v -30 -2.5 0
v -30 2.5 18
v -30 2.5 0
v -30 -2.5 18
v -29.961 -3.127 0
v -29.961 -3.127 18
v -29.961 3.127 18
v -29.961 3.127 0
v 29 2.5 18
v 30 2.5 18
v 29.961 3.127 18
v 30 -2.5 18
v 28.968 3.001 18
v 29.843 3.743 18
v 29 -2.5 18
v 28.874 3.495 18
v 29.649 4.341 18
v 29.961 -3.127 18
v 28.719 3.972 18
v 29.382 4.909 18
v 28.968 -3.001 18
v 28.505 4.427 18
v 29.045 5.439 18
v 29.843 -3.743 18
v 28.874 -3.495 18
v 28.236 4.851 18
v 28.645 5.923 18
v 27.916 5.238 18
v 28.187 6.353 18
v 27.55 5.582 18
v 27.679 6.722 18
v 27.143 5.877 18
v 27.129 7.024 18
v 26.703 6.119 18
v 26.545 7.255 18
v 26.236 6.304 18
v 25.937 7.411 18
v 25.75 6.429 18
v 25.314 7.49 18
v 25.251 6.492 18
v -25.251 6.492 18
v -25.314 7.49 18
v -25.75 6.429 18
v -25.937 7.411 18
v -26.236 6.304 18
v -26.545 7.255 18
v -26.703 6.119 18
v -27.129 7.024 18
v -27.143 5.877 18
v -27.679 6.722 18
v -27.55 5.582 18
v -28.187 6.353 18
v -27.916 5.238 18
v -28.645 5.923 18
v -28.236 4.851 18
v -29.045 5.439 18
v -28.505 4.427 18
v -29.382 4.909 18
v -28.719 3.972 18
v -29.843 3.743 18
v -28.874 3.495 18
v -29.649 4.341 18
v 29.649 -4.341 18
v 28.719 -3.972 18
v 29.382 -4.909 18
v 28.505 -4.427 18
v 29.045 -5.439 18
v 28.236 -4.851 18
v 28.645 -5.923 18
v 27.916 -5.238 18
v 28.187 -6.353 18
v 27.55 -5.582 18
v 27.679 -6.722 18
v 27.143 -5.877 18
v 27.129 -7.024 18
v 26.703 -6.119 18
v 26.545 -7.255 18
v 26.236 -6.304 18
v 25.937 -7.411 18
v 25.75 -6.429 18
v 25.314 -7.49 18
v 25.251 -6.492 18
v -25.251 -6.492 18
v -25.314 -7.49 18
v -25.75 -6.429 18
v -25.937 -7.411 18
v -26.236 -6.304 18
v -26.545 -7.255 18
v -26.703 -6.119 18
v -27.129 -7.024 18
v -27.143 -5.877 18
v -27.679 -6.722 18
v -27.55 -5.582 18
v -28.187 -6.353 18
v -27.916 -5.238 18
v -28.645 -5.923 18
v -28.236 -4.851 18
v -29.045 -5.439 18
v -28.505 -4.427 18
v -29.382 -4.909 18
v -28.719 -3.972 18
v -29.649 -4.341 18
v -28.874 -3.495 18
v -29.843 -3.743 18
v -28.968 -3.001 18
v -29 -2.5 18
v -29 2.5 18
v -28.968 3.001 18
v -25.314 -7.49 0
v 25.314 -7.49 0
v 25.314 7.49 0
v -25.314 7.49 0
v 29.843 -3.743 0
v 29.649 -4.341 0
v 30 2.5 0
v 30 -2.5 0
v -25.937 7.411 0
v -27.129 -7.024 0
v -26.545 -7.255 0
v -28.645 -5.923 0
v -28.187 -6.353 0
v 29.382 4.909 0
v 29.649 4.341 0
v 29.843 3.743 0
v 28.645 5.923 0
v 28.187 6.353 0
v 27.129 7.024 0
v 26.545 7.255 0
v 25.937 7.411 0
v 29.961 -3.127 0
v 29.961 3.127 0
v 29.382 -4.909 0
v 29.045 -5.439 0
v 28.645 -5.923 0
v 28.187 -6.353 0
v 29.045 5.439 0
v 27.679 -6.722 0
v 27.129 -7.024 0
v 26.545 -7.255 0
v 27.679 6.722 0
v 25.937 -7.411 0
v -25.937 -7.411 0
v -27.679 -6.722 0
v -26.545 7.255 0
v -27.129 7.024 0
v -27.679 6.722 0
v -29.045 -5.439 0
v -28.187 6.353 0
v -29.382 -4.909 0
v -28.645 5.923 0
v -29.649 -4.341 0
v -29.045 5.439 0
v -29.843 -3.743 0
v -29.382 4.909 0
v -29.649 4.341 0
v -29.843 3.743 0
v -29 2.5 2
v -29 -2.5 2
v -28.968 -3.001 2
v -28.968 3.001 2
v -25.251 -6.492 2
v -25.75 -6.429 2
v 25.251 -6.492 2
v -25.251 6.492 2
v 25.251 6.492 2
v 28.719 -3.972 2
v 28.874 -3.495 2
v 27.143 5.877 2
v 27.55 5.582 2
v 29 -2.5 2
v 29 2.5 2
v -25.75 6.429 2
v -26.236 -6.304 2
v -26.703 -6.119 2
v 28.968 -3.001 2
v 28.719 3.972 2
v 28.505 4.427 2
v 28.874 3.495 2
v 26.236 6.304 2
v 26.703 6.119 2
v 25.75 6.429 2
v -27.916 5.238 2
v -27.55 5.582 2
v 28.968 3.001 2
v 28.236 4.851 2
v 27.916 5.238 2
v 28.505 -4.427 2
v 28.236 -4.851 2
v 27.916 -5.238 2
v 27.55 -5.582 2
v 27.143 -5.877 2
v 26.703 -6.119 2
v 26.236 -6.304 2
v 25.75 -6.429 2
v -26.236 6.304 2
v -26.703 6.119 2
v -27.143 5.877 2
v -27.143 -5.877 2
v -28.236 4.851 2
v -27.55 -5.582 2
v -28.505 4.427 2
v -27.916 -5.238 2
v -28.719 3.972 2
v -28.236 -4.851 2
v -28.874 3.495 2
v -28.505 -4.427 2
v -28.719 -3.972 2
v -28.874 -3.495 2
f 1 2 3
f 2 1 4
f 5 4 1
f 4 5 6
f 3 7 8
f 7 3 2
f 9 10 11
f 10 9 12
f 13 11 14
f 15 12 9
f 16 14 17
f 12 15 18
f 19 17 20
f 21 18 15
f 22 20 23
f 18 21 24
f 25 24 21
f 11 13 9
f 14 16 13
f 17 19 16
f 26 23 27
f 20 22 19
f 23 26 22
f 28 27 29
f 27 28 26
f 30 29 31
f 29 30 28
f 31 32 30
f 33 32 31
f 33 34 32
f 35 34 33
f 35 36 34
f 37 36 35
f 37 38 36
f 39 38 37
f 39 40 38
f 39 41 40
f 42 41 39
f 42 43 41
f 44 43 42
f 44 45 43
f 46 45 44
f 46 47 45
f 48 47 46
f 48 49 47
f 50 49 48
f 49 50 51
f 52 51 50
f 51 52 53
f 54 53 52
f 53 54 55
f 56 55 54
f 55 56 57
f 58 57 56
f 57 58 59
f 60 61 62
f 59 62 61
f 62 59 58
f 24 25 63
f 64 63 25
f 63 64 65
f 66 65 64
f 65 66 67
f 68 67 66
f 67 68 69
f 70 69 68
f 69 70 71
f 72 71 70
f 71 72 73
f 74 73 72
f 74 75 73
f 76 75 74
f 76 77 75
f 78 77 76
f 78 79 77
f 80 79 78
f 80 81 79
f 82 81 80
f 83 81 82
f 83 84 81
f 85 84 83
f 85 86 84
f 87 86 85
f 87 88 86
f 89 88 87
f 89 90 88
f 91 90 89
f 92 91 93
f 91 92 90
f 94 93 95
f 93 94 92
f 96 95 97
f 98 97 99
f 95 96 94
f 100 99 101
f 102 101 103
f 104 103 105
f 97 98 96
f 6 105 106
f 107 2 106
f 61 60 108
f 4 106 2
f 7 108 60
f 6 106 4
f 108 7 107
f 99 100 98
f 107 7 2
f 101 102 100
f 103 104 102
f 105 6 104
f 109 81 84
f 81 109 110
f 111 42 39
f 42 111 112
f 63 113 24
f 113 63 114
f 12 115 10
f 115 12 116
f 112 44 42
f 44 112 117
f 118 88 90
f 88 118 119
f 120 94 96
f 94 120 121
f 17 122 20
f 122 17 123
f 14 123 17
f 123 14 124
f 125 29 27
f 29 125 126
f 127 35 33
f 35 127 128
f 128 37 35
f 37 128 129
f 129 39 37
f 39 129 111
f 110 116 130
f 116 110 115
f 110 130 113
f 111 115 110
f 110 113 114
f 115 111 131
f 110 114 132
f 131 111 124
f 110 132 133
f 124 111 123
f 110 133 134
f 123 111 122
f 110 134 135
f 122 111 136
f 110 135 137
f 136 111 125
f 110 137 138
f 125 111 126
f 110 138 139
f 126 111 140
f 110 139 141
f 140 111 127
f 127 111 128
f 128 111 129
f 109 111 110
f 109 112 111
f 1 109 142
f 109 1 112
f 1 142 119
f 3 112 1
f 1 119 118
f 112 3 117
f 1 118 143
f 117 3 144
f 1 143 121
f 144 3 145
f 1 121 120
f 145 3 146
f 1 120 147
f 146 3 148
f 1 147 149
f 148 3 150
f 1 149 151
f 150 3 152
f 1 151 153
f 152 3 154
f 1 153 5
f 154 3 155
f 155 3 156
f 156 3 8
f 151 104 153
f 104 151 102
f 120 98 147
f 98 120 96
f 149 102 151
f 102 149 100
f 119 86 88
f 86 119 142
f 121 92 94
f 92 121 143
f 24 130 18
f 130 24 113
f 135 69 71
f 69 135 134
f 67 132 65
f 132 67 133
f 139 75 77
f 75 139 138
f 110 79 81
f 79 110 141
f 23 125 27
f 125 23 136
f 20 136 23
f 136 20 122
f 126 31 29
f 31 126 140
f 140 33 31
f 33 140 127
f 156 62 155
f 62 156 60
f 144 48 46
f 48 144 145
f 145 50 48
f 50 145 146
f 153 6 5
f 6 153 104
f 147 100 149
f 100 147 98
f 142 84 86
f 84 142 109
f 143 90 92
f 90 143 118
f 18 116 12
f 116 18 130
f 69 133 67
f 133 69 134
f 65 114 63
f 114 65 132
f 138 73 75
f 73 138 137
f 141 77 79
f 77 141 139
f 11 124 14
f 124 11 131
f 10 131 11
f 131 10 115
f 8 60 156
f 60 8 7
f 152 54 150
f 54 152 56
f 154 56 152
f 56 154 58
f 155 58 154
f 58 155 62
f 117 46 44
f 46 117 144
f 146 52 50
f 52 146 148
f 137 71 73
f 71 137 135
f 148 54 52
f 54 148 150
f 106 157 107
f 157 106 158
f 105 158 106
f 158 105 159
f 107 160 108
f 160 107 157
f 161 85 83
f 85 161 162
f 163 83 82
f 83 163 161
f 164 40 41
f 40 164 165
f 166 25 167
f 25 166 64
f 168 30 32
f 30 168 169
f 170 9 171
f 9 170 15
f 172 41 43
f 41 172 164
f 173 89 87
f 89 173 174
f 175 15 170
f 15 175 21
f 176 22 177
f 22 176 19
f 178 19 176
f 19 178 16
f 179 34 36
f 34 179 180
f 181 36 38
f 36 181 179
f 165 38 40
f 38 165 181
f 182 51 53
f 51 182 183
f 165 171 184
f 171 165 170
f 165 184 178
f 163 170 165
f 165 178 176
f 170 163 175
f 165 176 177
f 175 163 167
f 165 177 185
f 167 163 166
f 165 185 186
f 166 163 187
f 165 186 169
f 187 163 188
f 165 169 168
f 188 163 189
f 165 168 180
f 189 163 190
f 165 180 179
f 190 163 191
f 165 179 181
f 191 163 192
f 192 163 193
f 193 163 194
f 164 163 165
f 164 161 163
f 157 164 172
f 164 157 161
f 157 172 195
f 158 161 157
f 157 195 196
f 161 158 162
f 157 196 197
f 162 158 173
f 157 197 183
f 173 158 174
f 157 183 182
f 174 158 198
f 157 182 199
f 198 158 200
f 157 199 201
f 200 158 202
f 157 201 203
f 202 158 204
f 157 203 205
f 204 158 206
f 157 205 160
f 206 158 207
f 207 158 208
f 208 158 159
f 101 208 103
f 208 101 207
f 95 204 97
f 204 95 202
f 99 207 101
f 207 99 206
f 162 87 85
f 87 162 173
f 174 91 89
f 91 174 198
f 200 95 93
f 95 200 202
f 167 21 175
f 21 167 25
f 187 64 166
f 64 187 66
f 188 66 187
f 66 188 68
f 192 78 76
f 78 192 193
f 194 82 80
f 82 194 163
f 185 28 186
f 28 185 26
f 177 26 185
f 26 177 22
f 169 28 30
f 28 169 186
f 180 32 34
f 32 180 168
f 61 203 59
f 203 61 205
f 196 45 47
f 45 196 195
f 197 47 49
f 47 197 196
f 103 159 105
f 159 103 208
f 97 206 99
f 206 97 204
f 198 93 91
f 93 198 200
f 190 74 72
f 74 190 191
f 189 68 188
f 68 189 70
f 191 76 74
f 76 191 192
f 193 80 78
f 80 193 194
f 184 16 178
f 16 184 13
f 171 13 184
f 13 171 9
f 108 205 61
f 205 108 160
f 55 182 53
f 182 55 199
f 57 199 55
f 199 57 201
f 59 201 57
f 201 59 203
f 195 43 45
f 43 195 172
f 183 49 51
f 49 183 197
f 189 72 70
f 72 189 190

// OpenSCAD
$fn = 50;


difference() {
	union() {
		hull() {
			translate(v = [-25.0000000000, 2.5000000000, 0]) {
				cylinder(h = 18, r = 5);
			}
			translate(v = [25.0000000000, 2.5000000000, 0]) {
				cylinder(h = 18, r = 5);
			}
			translate(v = [-25.0000000000, -2.5000000000, 0]) {
				cylinder(h = 18, r = 5);
			}
			translate(v = [25.0000000000, -2.5000000000, 0]) {
				cylinder(h = 18, r = 5);
			}
		}
	}
	union() {
		translate(v = [0, 0, 2]) {
			hull() {
				translate(v = [-25.0000000000, 2.5000000000, 0]) {
					cylinder(h = 16, r = 4);
				}
				translate(v = [25.0000000000, 2.5000000000, 0]) {
					cylinder(h = 16, r = 4);
				}
				translate(v = [-25.0000000000, -2.5000000000, 0]) {
					cylinder(h = 16, r = 4);
				}
				translate(v = [25.0000000000, -2.5000000000, 0]) {
					cylinder(h = 16, r = 4);
				}
			}
		}
	}
}
